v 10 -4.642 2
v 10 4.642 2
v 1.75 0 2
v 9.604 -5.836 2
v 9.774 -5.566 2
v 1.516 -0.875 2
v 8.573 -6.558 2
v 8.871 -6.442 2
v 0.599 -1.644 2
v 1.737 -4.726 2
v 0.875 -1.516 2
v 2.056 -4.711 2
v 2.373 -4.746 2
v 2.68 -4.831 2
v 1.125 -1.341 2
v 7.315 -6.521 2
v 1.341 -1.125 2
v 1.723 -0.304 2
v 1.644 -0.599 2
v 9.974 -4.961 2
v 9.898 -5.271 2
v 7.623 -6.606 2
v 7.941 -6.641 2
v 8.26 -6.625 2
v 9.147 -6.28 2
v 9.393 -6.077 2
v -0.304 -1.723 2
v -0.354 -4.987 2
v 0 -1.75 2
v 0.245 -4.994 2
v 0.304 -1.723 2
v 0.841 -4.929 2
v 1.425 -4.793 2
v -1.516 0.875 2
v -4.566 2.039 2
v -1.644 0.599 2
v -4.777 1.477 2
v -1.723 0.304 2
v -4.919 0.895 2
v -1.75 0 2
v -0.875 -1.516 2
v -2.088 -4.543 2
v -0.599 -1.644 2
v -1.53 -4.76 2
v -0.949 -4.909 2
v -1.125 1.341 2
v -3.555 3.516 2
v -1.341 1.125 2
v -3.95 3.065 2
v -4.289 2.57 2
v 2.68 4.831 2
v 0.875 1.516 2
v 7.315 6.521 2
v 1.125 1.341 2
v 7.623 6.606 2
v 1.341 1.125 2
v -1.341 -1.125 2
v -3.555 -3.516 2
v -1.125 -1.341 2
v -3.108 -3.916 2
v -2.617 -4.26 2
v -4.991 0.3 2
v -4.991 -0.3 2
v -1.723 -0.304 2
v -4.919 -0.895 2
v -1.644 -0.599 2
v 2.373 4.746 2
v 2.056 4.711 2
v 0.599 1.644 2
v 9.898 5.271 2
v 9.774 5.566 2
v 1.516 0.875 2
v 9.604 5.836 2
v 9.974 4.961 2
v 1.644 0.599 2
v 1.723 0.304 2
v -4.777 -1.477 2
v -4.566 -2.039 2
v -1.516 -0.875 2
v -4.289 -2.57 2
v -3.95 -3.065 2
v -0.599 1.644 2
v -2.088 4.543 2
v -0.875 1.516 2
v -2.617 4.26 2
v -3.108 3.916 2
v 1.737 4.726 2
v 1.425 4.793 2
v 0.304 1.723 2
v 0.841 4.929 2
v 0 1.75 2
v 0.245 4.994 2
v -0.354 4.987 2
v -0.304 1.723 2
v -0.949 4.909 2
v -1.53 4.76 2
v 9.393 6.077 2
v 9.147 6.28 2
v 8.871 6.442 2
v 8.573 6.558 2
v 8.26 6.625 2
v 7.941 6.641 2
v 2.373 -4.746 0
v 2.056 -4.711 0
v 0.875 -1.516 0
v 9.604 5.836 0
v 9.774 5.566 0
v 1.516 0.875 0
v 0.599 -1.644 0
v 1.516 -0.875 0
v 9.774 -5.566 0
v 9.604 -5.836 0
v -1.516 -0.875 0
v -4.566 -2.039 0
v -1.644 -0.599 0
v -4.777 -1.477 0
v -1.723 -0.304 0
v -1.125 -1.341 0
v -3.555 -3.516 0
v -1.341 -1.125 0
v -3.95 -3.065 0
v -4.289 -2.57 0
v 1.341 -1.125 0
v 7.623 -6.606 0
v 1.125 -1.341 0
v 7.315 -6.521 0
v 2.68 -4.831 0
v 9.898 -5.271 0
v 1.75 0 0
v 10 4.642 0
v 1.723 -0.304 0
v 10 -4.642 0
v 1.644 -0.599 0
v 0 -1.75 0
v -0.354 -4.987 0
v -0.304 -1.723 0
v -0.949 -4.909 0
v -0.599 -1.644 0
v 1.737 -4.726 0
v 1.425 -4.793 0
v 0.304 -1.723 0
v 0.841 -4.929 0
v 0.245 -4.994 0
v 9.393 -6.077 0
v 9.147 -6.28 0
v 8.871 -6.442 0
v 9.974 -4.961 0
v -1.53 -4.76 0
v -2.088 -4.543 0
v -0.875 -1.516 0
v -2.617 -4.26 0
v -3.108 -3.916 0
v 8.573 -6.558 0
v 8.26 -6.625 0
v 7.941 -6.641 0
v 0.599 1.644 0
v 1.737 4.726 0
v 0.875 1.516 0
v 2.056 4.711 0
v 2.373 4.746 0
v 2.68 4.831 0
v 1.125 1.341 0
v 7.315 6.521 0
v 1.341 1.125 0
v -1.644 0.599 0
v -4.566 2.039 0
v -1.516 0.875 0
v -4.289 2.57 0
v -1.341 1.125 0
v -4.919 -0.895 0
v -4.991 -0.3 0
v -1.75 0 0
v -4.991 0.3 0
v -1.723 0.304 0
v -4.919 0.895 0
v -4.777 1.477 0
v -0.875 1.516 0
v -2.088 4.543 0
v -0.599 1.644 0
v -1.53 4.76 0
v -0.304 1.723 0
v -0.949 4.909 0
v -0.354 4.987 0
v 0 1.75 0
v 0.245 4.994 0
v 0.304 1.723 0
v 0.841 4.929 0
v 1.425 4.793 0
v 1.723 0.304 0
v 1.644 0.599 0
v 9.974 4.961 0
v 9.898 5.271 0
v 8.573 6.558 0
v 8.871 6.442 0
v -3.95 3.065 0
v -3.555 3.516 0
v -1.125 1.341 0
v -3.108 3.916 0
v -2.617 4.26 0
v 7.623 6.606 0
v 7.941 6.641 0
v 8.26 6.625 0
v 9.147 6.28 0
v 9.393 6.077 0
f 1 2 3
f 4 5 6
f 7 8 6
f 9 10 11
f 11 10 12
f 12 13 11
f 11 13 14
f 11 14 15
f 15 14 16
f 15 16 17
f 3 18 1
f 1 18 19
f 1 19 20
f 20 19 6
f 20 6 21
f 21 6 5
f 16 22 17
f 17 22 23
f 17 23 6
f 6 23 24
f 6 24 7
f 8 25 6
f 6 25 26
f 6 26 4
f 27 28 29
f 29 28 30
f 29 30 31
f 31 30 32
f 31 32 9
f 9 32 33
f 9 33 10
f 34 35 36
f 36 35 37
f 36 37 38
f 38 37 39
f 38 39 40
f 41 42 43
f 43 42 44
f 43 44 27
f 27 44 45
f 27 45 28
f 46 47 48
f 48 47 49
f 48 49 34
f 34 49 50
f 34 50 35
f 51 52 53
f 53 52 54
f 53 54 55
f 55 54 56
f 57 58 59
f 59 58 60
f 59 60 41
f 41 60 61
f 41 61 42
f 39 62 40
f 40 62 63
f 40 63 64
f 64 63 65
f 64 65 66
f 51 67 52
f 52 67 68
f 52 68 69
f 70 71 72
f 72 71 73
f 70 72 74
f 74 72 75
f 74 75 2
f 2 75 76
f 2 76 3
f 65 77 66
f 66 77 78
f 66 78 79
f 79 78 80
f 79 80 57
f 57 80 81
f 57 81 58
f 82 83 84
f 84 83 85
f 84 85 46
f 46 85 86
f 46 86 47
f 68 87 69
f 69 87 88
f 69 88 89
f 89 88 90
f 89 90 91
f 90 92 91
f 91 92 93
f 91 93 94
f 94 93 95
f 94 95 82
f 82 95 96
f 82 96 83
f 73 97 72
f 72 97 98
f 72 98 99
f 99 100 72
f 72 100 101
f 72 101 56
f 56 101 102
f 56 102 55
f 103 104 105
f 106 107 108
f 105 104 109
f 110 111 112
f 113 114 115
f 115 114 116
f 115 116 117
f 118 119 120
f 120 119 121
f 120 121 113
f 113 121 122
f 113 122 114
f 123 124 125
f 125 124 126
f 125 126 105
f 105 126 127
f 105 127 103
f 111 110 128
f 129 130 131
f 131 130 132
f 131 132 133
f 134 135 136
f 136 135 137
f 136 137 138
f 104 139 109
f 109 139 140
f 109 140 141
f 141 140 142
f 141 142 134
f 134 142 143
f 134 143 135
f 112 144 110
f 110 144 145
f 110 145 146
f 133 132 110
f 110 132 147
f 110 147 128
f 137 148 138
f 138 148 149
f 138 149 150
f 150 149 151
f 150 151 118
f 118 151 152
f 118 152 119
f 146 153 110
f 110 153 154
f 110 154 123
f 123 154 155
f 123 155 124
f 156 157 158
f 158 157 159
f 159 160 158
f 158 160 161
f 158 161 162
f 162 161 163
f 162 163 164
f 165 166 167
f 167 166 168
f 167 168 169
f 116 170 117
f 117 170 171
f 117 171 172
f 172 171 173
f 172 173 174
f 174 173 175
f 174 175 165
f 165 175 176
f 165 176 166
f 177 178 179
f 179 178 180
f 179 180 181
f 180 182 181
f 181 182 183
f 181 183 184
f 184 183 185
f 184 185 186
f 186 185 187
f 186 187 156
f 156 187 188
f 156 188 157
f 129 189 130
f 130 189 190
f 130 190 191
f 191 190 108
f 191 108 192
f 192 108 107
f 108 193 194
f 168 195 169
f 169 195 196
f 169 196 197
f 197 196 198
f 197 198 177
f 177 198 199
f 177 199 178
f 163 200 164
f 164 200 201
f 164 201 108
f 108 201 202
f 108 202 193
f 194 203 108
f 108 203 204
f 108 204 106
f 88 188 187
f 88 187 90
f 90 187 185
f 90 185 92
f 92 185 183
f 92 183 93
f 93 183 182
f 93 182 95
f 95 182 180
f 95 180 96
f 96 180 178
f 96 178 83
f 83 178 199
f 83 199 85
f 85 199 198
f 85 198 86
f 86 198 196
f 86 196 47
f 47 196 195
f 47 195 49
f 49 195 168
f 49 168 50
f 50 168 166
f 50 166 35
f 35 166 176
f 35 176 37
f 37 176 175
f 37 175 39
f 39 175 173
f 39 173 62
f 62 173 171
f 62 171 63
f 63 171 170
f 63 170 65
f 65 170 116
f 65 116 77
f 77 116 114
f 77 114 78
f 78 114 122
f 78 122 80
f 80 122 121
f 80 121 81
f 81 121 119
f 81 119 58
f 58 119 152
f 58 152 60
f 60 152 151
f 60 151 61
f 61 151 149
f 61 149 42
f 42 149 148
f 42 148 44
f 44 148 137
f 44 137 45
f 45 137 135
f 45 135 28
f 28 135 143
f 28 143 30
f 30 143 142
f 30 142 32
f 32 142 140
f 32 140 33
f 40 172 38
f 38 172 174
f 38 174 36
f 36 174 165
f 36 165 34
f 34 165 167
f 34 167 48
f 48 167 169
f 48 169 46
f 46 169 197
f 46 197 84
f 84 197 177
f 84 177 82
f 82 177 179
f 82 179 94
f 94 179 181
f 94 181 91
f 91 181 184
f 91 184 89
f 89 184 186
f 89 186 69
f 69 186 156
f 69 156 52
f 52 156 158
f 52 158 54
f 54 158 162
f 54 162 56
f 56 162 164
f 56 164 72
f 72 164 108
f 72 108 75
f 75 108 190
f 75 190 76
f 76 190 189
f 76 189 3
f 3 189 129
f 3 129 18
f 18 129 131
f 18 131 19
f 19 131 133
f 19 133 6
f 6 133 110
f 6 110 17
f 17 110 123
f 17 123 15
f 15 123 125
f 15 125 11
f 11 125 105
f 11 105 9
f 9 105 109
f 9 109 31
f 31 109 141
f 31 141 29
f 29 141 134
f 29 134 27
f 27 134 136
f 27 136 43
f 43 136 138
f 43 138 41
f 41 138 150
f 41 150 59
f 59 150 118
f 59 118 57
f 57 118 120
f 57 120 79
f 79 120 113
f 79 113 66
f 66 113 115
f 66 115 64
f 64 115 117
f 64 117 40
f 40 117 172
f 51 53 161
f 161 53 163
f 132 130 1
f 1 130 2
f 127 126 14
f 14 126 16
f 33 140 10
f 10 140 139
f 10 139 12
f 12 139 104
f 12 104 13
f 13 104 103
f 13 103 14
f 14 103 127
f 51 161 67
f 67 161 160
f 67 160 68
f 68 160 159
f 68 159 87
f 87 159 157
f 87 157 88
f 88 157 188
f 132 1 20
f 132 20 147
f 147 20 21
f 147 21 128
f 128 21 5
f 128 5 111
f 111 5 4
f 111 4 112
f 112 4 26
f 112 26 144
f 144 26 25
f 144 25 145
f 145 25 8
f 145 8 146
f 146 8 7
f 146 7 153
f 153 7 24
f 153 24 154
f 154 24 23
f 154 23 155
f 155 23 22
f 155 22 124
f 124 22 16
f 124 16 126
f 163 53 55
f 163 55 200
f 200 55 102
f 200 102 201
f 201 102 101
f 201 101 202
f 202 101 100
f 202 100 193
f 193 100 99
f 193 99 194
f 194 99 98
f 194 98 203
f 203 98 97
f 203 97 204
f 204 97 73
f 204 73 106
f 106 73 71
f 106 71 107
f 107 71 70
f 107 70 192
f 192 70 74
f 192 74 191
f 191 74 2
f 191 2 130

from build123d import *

# Parameters (mm, degrees)
ESQUISSE1_R        = 5
ESQUISSE1_R_2      = 1.75
BOSS_EXTRU_1_DEPTH = 2
BOSS_EXTRU_2_DEPTH = 2
CONG_1_R           = 2


with BuildPart() as part:
    # Esquisse1 → Boss.-Extru.1 (new body)
    with BuildSketch(Plane.XY):
        Circle(ESQUISSE1_R)
        Circle(ESQUISSE1_R_2, mode=Mode.SUBTRACT)
    extrude(amount=BOSS_EXTRU_1_DEPTH)

    # Esquisse2 → Boss.-Extru.2 (add)
    with BuildSketch(Plane.XY.offset(2)):
        Polygon((10, 7.5), (10, -7.5), (2, -4.582575695), (2, 4.582575695), align=None)
    extrude(amount=-BOSS_EXTRU_2_DEPTH)

    # Congé1
    cong_1_edges = [part.edges().sort_by_distance(p)[0] for p in [
        (2, 4.582575695, 1),
        (10, 7.5, 1),
        (10, -7.5, 1),
        (2, -4.582575695, 1),
    ]]
    fillet(cong_1_edges, radius=CONG_1_R)


solid = part.part
